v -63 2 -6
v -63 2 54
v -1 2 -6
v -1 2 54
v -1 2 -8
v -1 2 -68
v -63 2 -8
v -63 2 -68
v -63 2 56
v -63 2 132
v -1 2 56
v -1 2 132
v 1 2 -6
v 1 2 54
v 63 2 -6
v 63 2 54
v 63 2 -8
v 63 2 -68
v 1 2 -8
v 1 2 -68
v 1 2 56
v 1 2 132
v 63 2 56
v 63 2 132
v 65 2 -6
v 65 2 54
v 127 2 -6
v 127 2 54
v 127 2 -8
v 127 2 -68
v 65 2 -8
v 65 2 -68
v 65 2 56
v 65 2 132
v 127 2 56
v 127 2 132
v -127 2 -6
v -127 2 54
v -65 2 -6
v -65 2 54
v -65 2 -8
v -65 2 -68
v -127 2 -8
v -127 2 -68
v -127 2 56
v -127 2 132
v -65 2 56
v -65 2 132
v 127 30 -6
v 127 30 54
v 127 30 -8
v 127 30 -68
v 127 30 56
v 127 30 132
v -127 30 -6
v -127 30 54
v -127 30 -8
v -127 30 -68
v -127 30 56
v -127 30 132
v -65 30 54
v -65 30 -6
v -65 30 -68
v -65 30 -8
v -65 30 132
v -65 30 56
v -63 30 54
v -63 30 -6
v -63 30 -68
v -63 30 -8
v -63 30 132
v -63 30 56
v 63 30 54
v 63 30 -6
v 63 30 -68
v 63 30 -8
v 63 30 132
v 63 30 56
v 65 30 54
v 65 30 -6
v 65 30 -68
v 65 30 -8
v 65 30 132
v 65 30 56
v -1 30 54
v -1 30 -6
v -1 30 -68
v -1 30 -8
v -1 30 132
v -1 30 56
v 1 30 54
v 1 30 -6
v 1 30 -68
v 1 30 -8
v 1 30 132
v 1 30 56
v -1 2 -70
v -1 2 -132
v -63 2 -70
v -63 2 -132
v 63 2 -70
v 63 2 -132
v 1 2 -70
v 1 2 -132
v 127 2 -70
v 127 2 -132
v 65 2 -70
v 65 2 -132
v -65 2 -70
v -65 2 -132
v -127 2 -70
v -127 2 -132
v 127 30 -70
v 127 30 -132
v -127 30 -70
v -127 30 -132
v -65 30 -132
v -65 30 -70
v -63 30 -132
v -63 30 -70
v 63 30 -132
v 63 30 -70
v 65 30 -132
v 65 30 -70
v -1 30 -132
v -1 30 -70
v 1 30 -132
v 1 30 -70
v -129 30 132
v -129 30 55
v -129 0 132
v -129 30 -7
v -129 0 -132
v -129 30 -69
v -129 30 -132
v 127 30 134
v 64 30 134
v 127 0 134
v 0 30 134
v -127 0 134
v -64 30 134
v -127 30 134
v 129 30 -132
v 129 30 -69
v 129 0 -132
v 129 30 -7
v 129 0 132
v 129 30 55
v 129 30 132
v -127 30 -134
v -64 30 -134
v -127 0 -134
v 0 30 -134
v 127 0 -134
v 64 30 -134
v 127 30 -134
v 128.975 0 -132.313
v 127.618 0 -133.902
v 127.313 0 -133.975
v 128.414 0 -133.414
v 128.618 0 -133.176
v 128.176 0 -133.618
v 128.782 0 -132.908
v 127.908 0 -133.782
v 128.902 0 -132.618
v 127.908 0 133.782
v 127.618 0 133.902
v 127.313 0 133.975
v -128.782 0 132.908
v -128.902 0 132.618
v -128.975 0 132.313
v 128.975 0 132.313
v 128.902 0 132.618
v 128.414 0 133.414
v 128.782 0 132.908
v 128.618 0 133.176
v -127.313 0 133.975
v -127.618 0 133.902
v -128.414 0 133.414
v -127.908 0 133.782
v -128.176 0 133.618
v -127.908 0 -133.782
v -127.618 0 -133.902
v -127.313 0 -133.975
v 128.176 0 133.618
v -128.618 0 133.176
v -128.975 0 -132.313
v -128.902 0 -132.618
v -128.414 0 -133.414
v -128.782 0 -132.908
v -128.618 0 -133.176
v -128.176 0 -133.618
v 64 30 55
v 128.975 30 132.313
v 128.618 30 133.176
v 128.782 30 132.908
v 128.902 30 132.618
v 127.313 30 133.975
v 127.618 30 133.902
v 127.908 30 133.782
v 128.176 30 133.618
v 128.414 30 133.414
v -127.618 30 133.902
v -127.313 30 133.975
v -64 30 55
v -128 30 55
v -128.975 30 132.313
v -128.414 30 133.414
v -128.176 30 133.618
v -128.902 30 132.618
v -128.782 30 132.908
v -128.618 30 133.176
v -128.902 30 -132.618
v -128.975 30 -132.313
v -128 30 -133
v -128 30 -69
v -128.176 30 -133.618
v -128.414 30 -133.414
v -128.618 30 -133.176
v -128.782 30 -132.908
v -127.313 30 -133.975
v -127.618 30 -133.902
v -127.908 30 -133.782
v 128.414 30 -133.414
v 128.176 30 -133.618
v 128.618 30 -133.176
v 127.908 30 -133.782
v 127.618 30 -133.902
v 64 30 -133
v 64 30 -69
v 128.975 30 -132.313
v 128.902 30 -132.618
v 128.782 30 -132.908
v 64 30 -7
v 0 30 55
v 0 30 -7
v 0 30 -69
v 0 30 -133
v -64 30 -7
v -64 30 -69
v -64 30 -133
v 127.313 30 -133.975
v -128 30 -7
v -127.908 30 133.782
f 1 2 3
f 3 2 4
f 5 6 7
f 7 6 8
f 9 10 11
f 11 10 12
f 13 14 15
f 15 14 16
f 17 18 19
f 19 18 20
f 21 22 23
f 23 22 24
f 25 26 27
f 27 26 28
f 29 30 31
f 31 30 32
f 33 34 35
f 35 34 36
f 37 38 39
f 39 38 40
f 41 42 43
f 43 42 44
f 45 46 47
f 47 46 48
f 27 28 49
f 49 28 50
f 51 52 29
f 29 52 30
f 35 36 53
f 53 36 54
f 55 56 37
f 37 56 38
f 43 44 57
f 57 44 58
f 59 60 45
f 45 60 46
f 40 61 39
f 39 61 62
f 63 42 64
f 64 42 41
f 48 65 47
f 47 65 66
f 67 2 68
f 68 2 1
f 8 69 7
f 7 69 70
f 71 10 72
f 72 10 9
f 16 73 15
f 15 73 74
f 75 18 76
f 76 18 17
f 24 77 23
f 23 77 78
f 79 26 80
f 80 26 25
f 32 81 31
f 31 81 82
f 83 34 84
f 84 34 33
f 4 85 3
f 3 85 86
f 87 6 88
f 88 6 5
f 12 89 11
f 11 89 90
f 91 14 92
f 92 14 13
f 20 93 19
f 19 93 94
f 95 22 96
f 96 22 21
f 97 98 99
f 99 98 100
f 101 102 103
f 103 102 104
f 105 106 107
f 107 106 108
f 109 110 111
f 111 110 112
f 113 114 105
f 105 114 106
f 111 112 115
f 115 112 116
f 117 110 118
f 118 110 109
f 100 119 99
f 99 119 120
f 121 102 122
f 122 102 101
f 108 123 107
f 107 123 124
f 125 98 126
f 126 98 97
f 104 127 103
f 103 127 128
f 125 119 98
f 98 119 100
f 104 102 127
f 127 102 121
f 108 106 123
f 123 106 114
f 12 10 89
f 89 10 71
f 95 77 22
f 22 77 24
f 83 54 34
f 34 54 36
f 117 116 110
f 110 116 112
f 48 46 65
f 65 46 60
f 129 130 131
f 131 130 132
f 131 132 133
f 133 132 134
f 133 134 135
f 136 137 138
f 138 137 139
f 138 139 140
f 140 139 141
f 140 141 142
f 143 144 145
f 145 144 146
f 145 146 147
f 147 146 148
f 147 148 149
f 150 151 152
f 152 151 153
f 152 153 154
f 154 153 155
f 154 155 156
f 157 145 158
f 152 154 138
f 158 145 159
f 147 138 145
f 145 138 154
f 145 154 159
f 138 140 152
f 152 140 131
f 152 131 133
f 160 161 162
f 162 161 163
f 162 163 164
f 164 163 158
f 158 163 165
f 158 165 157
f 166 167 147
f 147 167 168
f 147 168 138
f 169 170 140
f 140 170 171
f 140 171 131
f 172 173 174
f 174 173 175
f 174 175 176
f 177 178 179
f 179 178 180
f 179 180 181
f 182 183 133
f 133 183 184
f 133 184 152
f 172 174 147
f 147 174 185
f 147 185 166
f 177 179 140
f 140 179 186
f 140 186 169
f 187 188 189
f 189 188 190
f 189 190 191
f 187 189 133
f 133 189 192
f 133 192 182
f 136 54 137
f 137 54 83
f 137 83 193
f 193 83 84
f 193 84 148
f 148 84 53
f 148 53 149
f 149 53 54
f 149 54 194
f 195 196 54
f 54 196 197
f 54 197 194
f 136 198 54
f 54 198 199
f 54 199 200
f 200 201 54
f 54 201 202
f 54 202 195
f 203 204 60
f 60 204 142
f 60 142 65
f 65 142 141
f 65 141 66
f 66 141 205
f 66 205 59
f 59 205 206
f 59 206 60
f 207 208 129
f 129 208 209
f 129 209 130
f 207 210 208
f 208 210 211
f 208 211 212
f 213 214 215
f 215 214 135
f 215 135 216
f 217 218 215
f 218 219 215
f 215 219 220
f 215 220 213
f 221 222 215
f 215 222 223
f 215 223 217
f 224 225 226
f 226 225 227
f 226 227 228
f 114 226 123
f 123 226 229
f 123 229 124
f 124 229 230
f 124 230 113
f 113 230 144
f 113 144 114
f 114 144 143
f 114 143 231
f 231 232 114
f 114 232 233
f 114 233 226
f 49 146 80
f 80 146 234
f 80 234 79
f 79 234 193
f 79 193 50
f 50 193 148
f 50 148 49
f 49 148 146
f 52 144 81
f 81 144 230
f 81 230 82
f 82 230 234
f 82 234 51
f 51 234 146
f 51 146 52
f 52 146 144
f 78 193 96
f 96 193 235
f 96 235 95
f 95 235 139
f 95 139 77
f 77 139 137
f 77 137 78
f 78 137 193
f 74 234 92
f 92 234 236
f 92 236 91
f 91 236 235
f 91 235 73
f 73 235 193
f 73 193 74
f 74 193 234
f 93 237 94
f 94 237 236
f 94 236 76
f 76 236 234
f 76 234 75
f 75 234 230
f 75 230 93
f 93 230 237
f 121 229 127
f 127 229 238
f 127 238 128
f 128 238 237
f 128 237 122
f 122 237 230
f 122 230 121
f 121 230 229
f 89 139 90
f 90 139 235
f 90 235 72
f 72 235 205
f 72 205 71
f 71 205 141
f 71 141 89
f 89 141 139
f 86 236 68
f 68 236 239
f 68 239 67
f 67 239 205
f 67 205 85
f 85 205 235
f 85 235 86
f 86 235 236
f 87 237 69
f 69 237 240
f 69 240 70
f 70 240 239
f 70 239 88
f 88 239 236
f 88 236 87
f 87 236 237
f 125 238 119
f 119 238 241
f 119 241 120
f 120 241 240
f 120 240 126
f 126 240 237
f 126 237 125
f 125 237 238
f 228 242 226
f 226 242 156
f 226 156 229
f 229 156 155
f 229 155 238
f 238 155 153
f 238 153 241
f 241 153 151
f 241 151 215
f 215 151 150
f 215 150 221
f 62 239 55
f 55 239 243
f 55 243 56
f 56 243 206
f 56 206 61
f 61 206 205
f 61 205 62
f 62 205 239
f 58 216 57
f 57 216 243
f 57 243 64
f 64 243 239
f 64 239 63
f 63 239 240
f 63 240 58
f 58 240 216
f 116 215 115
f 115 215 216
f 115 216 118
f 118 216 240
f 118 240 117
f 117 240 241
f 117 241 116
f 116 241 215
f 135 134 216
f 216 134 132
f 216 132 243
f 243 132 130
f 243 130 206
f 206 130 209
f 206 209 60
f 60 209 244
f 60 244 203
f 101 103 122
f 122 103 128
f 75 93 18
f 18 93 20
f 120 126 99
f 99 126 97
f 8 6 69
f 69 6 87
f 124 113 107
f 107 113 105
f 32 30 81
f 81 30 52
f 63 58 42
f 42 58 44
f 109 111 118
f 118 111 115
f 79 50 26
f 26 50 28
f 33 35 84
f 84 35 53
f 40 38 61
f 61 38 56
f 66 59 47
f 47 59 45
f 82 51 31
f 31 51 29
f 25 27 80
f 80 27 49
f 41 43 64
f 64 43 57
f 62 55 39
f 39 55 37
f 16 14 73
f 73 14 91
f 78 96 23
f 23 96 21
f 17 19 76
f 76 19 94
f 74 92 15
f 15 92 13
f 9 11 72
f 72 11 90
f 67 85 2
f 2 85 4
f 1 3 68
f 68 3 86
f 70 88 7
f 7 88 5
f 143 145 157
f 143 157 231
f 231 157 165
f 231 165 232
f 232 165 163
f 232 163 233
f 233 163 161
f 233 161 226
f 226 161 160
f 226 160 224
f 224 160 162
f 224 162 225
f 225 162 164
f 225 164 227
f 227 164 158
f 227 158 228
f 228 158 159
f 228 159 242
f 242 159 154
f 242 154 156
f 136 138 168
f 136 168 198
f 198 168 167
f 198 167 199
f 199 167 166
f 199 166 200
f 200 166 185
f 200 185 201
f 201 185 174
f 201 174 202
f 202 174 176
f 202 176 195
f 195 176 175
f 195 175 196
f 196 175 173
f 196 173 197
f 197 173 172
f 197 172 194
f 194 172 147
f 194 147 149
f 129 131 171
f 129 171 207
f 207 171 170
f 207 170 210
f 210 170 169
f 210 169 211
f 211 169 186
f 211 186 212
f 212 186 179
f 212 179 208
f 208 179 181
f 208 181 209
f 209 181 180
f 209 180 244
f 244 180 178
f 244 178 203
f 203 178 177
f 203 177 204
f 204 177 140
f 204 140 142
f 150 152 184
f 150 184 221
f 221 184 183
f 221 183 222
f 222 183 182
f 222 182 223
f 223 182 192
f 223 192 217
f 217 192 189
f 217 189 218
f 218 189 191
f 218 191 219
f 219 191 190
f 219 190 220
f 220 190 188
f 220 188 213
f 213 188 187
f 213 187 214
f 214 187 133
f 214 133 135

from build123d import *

# Parameters (mm, degrees)
SKETCH_1_W             = 258
SKETCH_1_H             = 268
EXTRUDE_1_DEPTH        = 2
SKETCH_2_W             = 258
SKETCH_2_H             = 268
SKETCH_2_W_2           = 254
SKETCH_2_H_2           = 264
EXTRUDE_2_DEPTH        = 28
SKETCH_3_W             = 2
SKETCH_3_H             = 264
EXTRUDE_3_DEPTH        = 28
PATTERN_LINEAR_1_COUNT = 3
PATTERN_LINEAR_1_PITCH = 64
SKETCH_4_W             = 254
SKETCH_4_H             = 2
EXTRUDE_5_DEPTH        = 28
PATTERN_LINEAR_2_COUNT = 3
PATTERN_LINEAR_2_PITCH = 62
FILLET_1_R             = 2


with BuildPart() as part:
    # 草图1 → 凸台-拉伸1 (new body)
    with BuildSketch(Plane(origin=(0, 0, 0), x_dir=(1, 0, 0), z_dir=(0, 1, 0))):
        Rectangle(SKETCH_1_W, SKETCH_1_H)
    extrude(amount=EXTRUDE_1_DEPTH)

    # 草图2 → 凸台-拉伸2 (add)
    with BuildSketch(Plane(origin=(0, 2, 0), x_dir=(1, 0, 0), z_dir=(0, 1, 0))):
        Rectangle(SKETCH_2_W, SKETCH_2_H)
        Rectangle(SKETCH_2_W_2, SKETCH_2_H_2, mode=Mode.SUBTRACT)
    extrude(amount=EXTRUDE_2_DEPTH)

    # 草图3 → 凸台-拉伸3 (add)
    with BuildSketch(Plane(origin=(0, 2, 0), x_dir=(1, 0, 0), z_dir=(0, 1, 0))):
        with Locations((-64, 0)):
            Rectangle(SKETCH_3_W, SKETCH_3_H)
    extrude_3 = extrude(amount=EXTRUDE_3_DEPTH)

    # 阵列(线性)1: 凸台-拉伸3 ×3
    with Locations(*[(i * PATTERN_LINEAR_1_PITCH, 0, 0) for i in range(1, PATTERN_LINEAR_1_COUNT)]):
        add(extrude_3)

    # 草图4 → 凸台-拉伸5 (add)
    with BuildSketch(Plane(origin=(0, 2, 0), x_dir=(1, 0, 0), z_dir=(0, 1, 0))):
        with Locations((0, 69)):
            Rectangle(SKETCH_4_W, SKETCH_4_H)
    extrude_5 = extrude(amount=EXTRUDE_5_DEPTH)

    # 阵列(线性)2: 凸台-拉伸5 ×3
    with Locations(*[(0, 0, i * PATTERN_LINEAR_2_PITCH) for i in range(1, PATTERN_LINEAR_2_COUNT)]):
        add(extrude_5)

    # 圆角1
    fillet_1_edges = [part.edges().sort_by_distance(p)[0] for p in [
        (-129, 15, -134),
        (129, 15, -134),
        (129, 15, 134),
        (-129, 15, 134),
    ]]
    fillet(fillet_1_edges, radius=FILLET_1_R)


solid = part.part
